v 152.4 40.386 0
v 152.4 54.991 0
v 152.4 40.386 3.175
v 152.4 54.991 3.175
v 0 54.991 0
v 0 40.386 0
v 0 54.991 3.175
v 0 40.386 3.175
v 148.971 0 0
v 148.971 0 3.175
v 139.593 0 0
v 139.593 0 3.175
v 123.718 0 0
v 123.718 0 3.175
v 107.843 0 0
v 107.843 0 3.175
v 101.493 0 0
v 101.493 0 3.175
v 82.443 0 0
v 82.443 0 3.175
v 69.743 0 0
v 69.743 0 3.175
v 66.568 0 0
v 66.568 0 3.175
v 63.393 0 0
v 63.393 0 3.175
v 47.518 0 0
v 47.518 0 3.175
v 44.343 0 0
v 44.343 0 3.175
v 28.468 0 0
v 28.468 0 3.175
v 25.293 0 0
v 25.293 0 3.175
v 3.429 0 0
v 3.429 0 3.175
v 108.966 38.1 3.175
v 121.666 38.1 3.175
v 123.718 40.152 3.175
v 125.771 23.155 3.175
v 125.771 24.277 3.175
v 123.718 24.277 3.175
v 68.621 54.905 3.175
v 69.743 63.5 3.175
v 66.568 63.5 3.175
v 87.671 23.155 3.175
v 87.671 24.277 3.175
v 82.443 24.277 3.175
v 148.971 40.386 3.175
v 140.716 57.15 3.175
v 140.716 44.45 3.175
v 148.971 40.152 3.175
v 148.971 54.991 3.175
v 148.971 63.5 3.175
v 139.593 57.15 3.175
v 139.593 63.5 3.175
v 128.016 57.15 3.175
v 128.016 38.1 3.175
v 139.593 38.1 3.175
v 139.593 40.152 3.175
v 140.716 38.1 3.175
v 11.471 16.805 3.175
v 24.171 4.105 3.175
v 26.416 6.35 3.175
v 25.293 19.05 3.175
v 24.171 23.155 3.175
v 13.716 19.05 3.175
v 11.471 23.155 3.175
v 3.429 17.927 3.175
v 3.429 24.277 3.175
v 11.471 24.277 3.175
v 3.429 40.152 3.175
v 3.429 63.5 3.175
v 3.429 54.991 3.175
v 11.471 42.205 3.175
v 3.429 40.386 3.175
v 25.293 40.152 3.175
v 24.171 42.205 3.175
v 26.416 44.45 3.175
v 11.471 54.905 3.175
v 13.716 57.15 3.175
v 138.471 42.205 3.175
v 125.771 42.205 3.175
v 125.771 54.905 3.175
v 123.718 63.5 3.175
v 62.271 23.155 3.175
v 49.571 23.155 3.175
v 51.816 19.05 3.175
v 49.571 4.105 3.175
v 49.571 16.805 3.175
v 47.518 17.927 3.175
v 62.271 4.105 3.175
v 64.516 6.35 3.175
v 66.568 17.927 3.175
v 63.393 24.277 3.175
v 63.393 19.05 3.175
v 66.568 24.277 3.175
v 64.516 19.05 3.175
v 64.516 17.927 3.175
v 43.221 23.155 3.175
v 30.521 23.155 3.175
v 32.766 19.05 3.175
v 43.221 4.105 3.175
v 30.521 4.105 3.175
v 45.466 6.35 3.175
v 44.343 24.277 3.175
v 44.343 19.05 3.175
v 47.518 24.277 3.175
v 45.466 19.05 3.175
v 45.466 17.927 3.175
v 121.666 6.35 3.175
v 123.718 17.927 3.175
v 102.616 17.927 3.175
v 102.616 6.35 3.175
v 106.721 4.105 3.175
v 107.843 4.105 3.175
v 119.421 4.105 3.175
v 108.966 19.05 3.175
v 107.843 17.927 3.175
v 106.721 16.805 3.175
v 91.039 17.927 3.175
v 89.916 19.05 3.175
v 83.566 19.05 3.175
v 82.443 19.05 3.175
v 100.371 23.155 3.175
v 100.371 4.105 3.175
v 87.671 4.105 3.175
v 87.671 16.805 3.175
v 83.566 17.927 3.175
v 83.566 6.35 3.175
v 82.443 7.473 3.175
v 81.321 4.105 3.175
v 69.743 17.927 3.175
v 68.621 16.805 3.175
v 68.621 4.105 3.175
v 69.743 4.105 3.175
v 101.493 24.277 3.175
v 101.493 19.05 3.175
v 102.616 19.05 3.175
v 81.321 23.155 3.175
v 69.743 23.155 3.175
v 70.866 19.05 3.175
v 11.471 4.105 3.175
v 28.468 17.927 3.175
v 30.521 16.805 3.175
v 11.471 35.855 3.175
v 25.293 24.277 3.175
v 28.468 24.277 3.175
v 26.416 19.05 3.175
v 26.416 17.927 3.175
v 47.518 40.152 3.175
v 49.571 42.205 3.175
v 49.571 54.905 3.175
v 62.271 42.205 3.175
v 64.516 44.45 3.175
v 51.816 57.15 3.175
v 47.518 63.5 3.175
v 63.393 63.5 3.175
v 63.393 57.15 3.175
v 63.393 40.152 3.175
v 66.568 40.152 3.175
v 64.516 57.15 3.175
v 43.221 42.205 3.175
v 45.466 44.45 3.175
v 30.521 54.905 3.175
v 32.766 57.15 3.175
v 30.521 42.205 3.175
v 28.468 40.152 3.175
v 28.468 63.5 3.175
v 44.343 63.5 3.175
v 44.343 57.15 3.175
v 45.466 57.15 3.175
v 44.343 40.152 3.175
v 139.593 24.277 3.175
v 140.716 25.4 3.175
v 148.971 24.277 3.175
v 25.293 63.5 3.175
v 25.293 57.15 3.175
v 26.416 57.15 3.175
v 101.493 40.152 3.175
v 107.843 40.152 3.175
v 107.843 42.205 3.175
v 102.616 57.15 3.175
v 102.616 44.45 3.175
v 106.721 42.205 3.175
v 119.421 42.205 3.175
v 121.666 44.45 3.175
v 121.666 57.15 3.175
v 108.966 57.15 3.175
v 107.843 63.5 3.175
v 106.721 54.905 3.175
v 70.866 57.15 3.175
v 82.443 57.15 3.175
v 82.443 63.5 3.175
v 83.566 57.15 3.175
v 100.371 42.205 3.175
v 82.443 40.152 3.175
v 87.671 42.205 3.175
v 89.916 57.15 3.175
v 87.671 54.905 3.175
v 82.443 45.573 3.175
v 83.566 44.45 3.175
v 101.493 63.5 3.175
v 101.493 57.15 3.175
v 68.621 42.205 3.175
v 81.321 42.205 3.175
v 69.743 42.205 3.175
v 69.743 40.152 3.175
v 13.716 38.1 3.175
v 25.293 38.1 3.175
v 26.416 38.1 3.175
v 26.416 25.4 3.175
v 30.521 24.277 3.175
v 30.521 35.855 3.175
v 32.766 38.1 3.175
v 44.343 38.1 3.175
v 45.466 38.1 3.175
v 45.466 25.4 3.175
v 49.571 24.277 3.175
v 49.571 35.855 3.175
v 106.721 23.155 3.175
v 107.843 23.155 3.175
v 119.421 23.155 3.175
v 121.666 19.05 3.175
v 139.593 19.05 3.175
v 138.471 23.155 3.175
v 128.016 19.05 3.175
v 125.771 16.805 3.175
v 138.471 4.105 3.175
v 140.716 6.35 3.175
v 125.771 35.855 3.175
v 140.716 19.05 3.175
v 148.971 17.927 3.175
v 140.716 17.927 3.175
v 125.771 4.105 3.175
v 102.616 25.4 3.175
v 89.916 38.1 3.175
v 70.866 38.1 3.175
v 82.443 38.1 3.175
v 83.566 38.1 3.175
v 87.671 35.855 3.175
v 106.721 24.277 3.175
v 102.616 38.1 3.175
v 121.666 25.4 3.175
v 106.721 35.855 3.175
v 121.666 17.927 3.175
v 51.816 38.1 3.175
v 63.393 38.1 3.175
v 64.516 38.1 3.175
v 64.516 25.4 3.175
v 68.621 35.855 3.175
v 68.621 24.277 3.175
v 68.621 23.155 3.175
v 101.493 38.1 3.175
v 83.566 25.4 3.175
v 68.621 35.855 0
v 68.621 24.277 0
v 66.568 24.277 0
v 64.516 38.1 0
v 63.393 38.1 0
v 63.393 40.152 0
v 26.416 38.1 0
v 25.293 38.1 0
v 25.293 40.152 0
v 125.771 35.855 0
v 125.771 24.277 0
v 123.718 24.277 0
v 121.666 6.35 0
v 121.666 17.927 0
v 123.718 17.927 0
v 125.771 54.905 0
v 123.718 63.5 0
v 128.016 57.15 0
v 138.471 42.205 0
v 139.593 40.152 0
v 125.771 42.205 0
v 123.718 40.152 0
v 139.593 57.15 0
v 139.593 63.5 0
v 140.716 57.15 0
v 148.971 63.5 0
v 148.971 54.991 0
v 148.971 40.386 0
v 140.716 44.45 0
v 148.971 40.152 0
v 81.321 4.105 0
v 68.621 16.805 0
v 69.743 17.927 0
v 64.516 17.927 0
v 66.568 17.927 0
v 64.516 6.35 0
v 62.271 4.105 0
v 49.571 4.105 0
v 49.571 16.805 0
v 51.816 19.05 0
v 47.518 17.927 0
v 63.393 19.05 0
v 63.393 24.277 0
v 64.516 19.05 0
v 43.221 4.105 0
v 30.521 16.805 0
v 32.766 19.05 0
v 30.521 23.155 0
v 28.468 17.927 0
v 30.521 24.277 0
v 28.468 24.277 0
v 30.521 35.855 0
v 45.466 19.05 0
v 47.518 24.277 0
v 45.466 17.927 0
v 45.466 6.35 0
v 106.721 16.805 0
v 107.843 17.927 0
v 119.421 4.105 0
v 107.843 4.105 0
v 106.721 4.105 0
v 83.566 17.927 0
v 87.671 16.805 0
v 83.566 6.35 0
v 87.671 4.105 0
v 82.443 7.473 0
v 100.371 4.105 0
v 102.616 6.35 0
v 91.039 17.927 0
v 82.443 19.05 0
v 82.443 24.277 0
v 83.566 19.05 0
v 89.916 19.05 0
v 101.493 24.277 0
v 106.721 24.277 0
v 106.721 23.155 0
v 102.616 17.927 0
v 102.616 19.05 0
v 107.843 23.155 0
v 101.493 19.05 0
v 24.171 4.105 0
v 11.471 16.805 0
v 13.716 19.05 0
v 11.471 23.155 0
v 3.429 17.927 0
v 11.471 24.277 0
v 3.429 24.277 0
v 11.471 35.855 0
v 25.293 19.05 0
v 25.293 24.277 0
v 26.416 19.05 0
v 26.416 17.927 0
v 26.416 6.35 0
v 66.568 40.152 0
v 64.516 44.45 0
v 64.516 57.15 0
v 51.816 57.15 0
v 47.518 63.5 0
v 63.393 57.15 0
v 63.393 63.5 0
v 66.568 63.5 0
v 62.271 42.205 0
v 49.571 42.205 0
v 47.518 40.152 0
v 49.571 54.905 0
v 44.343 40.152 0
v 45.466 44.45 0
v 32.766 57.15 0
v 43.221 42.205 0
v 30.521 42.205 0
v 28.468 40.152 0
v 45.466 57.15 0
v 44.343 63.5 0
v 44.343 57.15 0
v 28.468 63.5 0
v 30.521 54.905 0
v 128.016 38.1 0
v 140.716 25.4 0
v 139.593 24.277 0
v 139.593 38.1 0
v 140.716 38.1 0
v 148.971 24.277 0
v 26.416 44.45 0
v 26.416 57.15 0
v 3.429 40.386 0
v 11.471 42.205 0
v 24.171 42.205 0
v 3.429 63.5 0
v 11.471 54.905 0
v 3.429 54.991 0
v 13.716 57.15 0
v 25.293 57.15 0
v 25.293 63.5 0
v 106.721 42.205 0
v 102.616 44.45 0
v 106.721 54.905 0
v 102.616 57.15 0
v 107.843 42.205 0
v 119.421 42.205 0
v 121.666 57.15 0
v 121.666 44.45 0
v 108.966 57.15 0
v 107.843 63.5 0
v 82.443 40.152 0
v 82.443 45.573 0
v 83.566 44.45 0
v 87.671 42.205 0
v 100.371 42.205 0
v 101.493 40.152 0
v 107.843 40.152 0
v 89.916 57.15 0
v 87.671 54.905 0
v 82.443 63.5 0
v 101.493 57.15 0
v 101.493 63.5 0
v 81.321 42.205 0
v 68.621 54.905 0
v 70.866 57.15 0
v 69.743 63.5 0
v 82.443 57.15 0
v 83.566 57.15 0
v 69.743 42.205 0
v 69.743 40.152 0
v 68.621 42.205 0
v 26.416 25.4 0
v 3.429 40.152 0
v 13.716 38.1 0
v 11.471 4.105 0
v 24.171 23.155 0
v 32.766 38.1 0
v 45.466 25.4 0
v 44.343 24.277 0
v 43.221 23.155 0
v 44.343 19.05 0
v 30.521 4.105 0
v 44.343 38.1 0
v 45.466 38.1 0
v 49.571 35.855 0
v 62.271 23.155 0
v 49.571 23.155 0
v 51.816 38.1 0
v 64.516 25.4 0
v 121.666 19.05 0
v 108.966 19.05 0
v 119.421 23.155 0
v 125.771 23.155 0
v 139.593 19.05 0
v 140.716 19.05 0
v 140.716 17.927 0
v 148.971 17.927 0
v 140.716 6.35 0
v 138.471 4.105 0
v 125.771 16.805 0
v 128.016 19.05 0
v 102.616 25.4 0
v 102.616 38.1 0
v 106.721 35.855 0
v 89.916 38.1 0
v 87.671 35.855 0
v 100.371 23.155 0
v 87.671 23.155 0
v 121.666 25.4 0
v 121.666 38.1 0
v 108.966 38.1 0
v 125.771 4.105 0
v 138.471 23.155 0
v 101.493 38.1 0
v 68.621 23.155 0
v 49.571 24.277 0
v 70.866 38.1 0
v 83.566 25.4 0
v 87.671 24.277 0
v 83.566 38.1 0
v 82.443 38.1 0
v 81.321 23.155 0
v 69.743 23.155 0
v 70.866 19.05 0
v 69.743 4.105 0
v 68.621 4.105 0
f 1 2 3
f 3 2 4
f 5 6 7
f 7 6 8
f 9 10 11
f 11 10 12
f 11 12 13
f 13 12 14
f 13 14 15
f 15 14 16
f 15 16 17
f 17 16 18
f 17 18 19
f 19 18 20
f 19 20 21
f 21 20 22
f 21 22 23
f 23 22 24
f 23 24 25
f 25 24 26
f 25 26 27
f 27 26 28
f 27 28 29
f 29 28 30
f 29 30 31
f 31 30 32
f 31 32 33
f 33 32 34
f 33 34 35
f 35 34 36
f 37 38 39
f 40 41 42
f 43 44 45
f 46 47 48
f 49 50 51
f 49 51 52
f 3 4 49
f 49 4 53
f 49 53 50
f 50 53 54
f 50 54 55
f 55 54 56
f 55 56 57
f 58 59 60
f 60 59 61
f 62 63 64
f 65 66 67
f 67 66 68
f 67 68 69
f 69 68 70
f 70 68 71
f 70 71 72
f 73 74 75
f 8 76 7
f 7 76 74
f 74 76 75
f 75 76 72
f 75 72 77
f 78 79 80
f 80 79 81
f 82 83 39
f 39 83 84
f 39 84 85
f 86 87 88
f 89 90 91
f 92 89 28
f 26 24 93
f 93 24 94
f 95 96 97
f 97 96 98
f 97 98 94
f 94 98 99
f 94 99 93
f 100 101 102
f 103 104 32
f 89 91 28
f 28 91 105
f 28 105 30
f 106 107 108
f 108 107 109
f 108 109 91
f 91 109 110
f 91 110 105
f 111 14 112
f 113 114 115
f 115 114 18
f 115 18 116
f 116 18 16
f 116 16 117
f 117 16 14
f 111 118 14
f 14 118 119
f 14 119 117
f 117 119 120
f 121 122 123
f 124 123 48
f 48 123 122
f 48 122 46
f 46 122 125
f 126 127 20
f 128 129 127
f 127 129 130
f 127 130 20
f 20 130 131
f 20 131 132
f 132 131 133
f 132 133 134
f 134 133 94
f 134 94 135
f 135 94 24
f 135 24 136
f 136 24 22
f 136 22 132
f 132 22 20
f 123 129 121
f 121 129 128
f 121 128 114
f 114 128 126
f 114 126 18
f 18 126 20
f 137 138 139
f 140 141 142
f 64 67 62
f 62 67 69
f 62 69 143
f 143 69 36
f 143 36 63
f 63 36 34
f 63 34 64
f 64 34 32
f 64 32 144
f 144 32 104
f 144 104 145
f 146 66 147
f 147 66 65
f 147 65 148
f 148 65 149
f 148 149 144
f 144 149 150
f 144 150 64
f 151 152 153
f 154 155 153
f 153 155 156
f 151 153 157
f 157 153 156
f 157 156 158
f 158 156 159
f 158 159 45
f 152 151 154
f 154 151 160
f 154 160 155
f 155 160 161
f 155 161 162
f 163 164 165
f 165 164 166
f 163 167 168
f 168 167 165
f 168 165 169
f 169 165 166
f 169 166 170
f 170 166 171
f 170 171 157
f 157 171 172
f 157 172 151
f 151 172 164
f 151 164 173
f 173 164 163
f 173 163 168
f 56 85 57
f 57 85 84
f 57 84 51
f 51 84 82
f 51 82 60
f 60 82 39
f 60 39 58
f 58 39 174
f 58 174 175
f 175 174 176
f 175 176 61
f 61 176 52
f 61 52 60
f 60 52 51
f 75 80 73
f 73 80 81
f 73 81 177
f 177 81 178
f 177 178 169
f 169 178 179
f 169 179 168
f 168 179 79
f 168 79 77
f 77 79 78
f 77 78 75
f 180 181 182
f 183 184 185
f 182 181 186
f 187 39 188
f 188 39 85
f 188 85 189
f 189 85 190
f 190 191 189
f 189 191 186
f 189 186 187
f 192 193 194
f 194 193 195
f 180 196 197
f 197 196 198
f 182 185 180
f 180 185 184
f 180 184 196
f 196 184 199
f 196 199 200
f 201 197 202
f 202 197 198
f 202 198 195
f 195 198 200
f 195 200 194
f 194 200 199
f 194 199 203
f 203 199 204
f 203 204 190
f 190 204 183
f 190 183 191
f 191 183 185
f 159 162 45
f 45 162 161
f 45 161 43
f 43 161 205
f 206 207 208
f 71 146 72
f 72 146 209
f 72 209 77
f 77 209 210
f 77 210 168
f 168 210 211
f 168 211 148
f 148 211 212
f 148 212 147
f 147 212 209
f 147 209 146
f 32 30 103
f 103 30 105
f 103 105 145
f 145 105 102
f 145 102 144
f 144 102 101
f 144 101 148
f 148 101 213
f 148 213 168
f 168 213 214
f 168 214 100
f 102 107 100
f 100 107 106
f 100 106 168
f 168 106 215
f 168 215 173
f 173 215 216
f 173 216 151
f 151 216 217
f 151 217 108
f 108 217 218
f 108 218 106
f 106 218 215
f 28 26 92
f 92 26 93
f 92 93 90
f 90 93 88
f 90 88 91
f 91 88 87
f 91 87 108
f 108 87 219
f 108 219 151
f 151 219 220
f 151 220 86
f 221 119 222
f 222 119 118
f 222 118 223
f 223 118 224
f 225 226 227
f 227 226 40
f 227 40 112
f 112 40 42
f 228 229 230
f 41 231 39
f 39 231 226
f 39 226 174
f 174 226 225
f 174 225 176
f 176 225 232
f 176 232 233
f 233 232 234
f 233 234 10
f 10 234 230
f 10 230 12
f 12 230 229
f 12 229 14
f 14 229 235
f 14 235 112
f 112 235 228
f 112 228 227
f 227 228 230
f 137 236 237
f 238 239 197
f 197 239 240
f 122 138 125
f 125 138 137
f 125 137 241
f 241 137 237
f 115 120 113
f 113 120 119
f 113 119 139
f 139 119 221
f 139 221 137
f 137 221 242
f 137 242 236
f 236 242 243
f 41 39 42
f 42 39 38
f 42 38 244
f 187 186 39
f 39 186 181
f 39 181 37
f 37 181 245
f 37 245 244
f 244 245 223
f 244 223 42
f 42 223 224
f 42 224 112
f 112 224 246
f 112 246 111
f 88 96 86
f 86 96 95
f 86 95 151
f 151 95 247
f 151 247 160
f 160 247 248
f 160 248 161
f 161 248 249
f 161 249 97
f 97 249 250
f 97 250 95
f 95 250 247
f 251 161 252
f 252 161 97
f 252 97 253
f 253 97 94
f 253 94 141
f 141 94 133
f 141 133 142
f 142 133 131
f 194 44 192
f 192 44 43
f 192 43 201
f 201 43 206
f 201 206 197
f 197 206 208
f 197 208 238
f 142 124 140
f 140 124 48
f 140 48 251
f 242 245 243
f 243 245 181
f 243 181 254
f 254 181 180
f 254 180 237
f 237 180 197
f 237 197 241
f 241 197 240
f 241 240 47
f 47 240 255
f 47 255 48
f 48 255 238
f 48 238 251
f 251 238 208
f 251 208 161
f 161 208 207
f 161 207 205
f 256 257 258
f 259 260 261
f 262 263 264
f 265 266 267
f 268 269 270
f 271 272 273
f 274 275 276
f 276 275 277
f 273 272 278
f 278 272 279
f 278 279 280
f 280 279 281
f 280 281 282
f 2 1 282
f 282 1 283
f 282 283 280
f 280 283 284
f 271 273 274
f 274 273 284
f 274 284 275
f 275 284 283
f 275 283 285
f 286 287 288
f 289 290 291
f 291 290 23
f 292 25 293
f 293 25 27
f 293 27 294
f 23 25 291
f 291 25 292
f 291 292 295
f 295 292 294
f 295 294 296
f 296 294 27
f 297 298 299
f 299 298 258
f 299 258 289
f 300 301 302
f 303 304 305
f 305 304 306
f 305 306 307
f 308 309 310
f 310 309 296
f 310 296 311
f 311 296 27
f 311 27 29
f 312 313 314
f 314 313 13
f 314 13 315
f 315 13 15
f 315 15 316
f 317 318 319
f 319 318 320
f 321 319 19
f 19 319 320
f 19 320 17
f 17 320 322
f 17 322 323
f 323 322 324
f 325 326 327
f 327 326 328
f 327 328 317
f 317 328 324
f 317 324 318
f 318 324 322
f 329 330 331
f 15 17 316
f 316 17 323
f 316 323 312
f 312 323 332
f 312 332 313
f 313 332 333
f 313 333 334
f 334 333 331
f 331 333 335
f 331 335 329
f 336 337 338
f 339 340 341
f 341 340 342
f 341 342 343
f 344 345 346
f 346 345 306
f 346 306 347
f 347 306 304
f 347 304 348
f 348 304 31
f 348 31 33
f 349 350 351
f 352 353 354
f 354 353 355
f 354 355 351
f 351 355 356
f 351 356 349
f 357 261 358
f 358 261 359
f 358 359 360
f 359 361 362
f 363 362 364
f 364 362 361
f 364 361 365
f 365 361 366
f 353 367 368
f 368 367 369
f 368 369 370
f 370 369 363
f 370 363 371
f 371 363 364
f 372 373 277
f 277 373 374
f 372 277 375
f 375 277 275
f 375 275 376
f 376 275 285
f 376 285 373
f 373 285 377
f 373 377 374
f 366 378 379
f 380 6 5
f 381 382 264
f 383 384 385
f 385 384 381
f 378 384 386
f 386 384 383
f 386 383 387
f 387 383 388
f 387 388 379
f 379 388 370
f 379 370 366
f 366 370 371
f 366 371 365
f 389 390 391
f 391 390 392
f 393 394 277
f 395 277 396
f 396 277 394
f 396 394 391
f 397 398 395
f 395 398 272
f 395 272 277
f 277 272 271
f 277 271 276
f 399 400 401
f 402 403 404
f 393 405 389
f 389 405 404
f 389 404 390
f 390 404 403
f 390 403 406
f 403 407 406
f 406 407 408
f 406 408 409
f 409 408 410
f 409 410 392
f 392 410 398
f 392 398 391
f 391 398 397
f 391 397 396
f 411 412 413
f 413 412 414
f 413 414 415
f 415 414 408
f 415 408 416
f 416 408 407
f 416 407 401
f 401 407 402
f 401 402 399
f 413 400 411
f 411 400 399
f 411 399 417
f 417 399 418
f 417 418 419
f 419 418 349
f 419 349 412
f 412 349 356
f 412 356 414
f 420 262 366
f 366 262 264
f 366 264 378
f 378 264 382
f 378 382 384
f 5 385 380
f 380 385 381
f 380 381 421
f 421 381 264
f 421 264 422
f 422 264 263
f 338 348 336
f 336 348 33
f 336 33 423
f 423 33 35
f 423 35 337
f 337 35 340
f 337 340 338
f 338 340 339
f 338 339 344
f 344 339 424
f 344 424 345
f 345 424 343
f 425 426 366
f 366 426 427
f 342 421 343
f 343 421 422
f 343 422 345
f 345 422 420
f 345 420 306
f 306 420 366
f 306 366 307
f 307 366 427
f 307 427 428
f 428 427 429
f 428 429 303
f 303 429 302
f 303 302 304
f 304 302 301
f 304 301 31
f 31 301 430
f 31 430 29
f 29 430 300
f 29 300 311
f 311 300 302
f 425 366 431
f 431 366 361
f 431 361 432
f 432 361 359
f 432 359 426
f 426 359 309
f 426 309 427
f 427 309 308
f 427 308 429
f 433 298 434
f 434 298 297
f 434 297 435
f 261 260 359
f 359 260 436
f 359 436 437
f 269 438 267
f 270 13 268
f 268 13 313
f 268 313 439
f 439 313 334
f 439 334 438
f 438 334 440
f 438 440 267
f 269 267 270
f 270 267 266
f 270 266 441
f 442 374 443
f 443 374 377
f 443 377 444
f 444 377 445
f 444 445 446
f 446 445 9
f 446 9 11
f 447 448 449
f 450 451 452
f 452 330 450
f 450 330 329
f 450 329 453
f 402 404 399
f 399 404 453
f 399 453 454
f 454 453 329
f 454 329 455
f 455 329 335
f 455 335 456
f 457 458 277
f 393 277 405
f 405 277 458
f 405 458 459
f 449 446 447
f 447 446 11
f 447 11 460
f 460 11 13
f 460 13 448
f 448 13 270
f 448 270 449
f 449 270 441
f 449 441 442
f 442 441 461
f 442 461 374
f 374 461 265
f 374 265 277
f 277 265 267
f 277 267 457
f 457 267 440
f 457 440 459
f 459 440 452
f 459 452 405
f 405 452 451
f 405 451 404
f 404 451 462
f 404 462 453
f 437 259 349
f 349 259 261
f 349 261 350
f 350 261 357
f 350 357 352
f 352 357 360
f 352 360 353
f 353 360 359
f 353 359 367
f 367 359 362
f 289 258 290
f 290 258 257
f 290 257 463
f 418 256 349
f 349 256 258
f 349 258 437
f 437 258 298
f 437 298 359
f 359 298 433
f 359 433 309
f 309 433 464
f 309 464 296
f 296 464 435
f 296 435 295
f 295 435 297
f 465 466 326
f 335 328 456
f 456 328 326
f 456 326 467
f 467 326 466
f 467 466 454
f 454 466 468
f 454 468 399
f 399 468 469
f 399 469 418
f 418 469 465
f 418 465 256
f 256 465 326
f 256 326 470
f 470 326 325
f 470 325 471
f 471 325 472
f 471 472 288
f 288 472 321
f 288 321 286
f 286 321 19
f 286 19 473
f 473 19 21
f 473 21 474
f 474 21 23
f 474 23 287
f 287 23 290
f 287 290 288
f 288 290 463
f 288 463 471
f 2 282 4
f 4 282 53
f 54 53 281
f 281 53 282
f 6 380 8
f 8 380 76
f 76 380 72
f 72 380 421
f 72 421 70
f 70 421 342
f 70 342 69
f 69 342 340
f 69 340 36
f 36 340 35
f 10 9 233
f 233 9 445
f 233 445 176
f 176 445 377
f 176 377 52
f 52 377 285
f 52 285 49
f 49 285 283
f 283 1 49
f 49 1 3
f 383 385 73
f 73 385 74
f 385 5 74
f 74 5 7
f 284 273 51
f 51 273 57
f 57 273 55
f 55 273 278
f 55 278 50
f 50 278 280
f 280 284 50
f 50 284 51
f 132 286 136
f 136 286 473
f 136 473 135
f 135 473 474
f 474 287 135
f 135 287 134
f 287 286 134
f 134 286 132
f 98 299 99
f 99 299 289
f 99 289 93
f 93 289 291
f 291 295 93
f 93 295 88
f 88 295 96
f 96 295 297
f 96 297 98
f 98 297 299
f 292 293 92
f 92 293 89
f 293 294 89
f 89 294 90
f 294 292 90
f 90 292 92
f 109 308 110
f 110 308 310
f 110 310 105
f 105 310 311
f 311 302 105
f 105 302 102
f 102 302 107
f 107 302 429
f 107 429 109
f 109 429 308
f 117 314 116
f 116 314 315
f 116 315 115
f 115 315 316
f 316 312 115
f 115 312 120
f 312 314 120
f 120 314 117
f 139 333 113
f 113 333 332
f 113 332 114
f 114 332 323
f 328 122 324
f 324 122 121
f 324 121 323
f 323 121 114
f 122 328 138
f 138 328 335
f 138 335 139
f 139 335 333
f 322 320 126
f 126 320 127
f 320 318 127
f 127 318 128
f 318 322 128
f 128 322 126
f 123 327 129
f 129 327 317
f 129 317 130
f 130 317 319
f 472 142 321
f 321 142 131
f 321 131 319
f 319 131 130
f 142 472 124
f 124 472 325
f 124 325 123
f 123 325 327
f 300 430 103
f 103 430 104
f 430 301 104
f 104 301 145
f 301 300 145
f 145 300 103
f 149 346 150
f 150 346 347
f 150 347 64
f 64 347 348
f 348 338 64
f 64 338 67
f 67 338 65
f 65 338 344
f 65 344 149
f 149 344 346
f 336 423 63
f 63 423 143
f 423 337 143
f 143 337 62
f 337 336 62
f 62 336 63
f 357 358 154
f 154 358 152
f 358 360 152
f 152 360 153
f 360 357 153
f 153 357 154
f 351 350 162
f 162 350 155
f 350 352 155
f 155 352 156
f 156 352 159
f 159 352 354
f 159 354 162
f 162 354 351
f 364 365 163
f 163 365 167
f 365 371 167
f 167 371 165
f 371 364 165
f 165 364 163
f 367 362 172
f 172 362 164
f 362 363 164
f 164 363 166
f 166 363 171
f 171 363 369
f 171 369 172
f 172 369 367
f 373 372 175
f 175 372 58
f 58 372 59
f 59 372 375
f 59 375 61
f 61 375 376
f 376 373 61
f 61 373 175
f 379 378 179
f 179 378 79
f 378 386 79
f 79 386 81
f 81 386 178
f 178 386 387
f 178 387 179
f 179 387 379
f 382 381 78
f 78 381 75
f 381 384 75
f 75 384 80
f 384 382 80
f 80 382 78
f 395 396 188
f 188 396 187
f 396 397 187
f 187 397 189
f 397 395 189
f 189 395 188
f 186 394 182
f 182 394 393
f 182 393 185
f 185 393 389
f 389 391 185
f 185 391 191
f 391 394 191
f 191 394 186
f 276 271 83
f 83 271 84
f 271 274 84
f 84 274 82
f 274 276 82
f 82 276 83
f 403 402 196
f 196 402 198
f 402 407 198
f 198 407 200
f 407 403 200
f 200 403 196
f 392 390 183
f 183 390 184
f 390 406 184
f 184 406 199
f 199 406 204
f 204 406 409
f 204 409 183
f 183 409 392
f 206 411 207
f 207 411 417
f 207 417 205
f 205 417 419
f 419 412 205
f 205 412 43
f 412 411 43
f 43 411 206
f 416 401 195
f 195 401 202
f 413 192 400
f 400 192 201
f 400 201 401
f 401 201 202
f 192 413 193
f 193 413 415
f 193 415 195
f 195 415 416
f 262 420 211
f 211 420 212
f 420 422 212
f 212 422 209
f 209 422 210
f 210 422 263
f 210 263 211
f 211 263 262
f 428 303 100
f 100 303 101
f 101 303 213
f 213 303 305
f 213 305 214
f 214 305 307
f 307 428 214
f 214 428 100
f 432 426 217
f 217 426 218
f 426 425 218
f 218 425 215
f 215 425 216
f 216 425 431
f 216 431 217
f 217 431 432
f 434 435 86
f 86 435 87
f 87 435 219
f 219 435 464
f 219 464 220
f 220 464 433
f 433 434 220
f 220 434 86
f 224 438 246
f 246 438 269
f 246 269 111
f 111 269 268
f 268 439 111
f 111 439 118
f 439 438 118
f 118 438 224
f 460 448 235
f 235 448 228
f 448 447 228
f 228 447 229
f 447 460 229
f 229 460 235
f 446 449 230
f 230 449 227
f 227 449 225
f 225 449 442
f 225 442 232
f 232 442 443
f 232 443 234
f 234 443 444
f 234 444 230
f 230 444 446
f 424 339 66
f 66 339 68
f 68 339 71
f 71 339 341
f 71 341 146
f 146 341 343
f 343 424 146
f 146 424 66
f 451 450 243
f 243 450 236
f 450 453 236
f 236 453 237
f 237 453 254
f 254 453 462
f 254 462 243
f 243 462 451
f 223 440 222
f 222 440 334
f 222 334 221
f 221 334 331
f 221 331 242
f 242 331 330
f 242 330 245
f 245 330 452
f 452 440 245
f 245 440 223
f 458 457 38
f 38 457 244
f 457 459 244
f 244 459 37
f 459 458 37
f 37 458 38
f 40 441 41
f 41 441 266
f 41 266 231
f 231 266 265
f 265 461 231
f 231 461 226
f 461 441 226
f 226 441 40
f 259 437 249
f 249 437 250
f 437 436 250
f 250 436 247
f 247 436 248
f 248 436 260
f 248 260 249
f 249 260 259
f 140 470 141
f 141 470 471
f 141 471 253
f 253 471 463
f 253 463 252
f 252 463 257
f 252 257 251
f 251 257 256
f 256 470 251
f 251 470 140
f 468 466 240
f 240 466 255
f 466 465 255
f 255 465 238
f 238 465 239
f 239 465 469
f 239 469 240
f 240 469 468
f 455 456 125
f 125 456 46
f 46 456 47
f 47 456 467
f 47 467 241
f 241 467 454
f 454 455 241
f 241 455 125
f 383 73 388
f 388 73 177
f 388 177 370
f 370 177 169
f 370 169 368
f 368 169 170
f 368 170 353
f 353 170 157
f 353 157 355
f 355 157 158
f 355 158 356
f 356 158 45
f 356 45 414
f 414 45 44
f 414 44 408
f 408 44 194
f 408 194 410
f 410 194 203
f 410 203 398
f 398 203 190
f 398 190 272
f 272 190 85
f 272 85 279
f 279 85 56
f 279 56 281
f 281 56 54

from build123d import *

# Parameters (mm, degrees)
SKETCH1_W           = 152.4
SKETCH1_H           = 241.3
BOSS_EXTRUDE1_DEPTH = 3.175
SKETCH2_W           = 3.429
SKETCH2_H           = 168.148
SKETCH2_H_2         = 40.386
CUT_EXTRUDE1_DEPTH  = 286.414664348
SKETCH3_W           = 119.38
SKETCH3_H           = 119.38
SKETCH3_W_2         = 74.6125
SKETCH3_H_2         = 25.4
SKETCH3_W_3         = 12.7
SKETCH3_H_3         = 16.256
SKETCH3_W_4         = 5.334
SKETCH3_H_4         = 7.239
CUT_EXTRUDE2_DEPTH  = 286.414664348
SKETCH4_W           = 194.284224207
SKETCH4_H           = 180.265938869
CUT_EXTRUDE4_DEPTH  = 286.414664348


with BuildPart() as part:
    # Sketch1 → Boss-Extrude1 (new body)
    with BuildSketch(Plane.XY):
        with Locations((76.2, 120.65)):
            Rectangle(SKETCH1_W, SKETCH1_H)
    extrude(amount=BOSS_EXTRUDE1_DEPTH)

    # Sketch2 → Cut-Extrude1 (cut, through all)
    with BuildSketch(Plane.XY.offset(3.175)):
        with Locations((150.6855, 139.065)):
            Rectangle(SKETCH2_W, SKETCH2_H)
        with Locations((1.7145, 139.065)):
            Rectangle(SKETCH2_W, SKETCH2_H)
        with Locations((150.6855, 20.193)):
            Rectangle(SKETCH2_W, SKETCH2_H_2)
        with Locations((1.7145, 20.193)):
            Rectangle(SKETCH2_W, SKETCH2_H_2)
    extrude(amount=-CUT_EXTRUDE1_DEPTH, mode=Mode.SUBTRACT)

    # Sketch3 → Cut-Extrude2 (cut, through all)
    with BuildSketch(Plane.XY.offset(3.175)):
        Polygon((128.016, 57.15), (140.716, 57.15), (140.716, 44.45), align=None)
        Polygon((125.77093597, 42.20493597), (138.47093597, 42.20493597), (125.77093597, 54.90493597), align=None)
        Polygon((108.966, 57.15), (121.666, 57.15), (121.666, 44.45), align=None)
        Polygon((119.42093597, 42.20493597), (106.72093597, 54.90493597), (106.72093597, 42.20493597), align=None)
        Polygon((89.916, 57.15), (102.616, 57.15), (102.616, 44.45), align=None)
        Polygon((100.37093597, 42.20493597), (87.67093597, 54.90493597), (87.67093597, 42.20493597), align=None)
        Polygon((70.866, 57.15), (83.566, 57.15), (83.566, 44.45), align=None)
        Polygon((81.32093597, 42.20493597), (68.62093597, 54.90493597), (68.62093597, 42.20493597), align=None)
        Polygon((51.816, 57.15), (64.516, 57.15), (64.516, 44.45), align=None)
        Polygon((62.27093597, 42.20493597), (49.57093597, 54.90493597), (49.57093597, 42.20493597), align=None)
        Polygon((32.766, 57.15), (45.466, 57.15), (45.466, 44.45), align=None)
        Polygon((43.22093597, 42.20493597), (30.52093597, 54.90493597), (30.52093597, 42.20493597), align=None)
        Polygon((13.716, 57.15), (26.416, 57.15), (26.416, 44.45), align=None)
        Polygon((24.17093597, 42.20493597), (11.47093597, 54.90493597), (11.47093597, 42.20493597), align=None)
        Polygon((128.016, 38.1), (140.716, 38.1), (140.716, 25.4), align=None)
        with Locations((76.454, 129.159)):
            Rectangle(SKETCH3_W, SKETCH3_H)
        Polygon((125.77093597, 23.15493597), (138.47093597, 23.15493597), (125.77093597, 35.85493597), align=None)
        Polygon((108.966, 38.1), (121.666, 38.1), (121.666, 25.4), align=None)
        Polygon((119.42093597, 23.15493597), (106.72093597, 35.85493597), (106.72093597, 23.15493597), align=None)
        Polygon((89.916, 38.1), (102.616, 38.1), (102.616, 25.4), align=None)
        Polygon((100.37093597, 23.15493597), (87.67093597, 35.85493597), (87.67093597, 23.15493597), align=None)
        Polygon((70.866, 38.1), (83.566, 38.1), (83.566, 25.4), align=None)
        Polygon((81.32093597, 23.15493597), (68.62093597, 35.85493597), (68.62093597, 23.15493597), align=None)
        Polygon((51.816, 38.1), (64.516, 38.1), (64.516, 25.4), align=None)
        Polygon((62.27093597, 23.15493597), (49.57093597, 35.85493597), (49.57093597, 23.15493597), align=None)
        Polygon((32.766, 38.1), (45.466, 38.1), (45.466, 25.4), align=None)
        Polygon((43.22093597, 23.15493597), (30.52093597, 35.85493597), (30.52093597, 23.15493597), align=None)
        Polygon((13.716, 38.1), (26.416, 38.1), (26.416, 25.4), align=None)
        Polygon((24.17093597, 23.15493597), (11.47093597, 35.85493597), (11.47093597, 23.15493597), align=None)
        Polygon((128.016, 19.05), (140.716, 19.05), (140.716, 6.35), align=None)
        Polygon((125.77093597, 4.10493597), (138.47093597, 4.10493597), (125.77093597, 16.80493597), align=None)
        Polygon((108.966, 19.05), (121.666, 19.05), (121.666, 6.35), align=None)
        Polygon((119.42093597, 4.10493597), (106.72093597, 16.80493597), (106.72093597, 4.10493597), align=None)
        Polygon((89.916, 19.05), (102.616, 19.05), (102.616, 6.35), align=None)
        Polygon((100.37093597, 4.10493597), (87.67093597, 16.80493597), (87.67093597, 4.10493597), align=None)
        Polygon((70.866, 19.05), (83.566, 19.05), (83.566, 6.35), align=None)
        Polygon((81.32093597, 4.10493597), (68.62093597, 16.80493597), (68.62093597, 4.10493597), align=None)
        Polygon((51.816, 19.05), (64.516, 19.05), (64.516, 6.35), align=None)
        Polygon((62.27093597, 4.10493597), (49.57093597, 16.80493597), (49.57093597, 4.10493597), align=None)
        Polygon((32.766, 19.05), (45.466, 19.05), (45.466, 6.35), align=None)
        Polygon((43.22093597, 4.10493597), (30.52093597, 16.80493597), (30.52093597, 4.10493597), align=None)
        Polygon((13.716, 19.05), (26.416, 19.05), (26.416, 6.35), align=None)
        Polygon((24.17093597, 4.10493597), (11.47093597, 16.80493597), (11.47093597, 4.10493597), align=None)
        with Locations((54.07025, 215.519)):
            Rectangle(SKETCH3_W_2, SKETCH3_H_2)
        with Locations((129.794, 210.947)):
            Rectangle(SKETCH3_W_3, SKETCH3_H_3)
        with Locations((104.0765, 206.4385)):
            Rectangle(SKETCH3_W_4, SKETCH3_H_4)
    extrude(amount=-CUT_EXTRUDE2_DEPTH, mode=Mode.SUBTRACT)

    # Sketch4 → Cut-Extrude4 (cut, through all)
    with BuildSketch(Plane.XY.offset(3.175)):
        with Locations((76.027835775, 153.632969435)):
            Rectangle(SKETCH4_W, SKETCH4_H)
    extrude(amount=-CUT_EXTRUDE4_DEPTH, mode=Mode.SUBTRACT)


solid = part.part
